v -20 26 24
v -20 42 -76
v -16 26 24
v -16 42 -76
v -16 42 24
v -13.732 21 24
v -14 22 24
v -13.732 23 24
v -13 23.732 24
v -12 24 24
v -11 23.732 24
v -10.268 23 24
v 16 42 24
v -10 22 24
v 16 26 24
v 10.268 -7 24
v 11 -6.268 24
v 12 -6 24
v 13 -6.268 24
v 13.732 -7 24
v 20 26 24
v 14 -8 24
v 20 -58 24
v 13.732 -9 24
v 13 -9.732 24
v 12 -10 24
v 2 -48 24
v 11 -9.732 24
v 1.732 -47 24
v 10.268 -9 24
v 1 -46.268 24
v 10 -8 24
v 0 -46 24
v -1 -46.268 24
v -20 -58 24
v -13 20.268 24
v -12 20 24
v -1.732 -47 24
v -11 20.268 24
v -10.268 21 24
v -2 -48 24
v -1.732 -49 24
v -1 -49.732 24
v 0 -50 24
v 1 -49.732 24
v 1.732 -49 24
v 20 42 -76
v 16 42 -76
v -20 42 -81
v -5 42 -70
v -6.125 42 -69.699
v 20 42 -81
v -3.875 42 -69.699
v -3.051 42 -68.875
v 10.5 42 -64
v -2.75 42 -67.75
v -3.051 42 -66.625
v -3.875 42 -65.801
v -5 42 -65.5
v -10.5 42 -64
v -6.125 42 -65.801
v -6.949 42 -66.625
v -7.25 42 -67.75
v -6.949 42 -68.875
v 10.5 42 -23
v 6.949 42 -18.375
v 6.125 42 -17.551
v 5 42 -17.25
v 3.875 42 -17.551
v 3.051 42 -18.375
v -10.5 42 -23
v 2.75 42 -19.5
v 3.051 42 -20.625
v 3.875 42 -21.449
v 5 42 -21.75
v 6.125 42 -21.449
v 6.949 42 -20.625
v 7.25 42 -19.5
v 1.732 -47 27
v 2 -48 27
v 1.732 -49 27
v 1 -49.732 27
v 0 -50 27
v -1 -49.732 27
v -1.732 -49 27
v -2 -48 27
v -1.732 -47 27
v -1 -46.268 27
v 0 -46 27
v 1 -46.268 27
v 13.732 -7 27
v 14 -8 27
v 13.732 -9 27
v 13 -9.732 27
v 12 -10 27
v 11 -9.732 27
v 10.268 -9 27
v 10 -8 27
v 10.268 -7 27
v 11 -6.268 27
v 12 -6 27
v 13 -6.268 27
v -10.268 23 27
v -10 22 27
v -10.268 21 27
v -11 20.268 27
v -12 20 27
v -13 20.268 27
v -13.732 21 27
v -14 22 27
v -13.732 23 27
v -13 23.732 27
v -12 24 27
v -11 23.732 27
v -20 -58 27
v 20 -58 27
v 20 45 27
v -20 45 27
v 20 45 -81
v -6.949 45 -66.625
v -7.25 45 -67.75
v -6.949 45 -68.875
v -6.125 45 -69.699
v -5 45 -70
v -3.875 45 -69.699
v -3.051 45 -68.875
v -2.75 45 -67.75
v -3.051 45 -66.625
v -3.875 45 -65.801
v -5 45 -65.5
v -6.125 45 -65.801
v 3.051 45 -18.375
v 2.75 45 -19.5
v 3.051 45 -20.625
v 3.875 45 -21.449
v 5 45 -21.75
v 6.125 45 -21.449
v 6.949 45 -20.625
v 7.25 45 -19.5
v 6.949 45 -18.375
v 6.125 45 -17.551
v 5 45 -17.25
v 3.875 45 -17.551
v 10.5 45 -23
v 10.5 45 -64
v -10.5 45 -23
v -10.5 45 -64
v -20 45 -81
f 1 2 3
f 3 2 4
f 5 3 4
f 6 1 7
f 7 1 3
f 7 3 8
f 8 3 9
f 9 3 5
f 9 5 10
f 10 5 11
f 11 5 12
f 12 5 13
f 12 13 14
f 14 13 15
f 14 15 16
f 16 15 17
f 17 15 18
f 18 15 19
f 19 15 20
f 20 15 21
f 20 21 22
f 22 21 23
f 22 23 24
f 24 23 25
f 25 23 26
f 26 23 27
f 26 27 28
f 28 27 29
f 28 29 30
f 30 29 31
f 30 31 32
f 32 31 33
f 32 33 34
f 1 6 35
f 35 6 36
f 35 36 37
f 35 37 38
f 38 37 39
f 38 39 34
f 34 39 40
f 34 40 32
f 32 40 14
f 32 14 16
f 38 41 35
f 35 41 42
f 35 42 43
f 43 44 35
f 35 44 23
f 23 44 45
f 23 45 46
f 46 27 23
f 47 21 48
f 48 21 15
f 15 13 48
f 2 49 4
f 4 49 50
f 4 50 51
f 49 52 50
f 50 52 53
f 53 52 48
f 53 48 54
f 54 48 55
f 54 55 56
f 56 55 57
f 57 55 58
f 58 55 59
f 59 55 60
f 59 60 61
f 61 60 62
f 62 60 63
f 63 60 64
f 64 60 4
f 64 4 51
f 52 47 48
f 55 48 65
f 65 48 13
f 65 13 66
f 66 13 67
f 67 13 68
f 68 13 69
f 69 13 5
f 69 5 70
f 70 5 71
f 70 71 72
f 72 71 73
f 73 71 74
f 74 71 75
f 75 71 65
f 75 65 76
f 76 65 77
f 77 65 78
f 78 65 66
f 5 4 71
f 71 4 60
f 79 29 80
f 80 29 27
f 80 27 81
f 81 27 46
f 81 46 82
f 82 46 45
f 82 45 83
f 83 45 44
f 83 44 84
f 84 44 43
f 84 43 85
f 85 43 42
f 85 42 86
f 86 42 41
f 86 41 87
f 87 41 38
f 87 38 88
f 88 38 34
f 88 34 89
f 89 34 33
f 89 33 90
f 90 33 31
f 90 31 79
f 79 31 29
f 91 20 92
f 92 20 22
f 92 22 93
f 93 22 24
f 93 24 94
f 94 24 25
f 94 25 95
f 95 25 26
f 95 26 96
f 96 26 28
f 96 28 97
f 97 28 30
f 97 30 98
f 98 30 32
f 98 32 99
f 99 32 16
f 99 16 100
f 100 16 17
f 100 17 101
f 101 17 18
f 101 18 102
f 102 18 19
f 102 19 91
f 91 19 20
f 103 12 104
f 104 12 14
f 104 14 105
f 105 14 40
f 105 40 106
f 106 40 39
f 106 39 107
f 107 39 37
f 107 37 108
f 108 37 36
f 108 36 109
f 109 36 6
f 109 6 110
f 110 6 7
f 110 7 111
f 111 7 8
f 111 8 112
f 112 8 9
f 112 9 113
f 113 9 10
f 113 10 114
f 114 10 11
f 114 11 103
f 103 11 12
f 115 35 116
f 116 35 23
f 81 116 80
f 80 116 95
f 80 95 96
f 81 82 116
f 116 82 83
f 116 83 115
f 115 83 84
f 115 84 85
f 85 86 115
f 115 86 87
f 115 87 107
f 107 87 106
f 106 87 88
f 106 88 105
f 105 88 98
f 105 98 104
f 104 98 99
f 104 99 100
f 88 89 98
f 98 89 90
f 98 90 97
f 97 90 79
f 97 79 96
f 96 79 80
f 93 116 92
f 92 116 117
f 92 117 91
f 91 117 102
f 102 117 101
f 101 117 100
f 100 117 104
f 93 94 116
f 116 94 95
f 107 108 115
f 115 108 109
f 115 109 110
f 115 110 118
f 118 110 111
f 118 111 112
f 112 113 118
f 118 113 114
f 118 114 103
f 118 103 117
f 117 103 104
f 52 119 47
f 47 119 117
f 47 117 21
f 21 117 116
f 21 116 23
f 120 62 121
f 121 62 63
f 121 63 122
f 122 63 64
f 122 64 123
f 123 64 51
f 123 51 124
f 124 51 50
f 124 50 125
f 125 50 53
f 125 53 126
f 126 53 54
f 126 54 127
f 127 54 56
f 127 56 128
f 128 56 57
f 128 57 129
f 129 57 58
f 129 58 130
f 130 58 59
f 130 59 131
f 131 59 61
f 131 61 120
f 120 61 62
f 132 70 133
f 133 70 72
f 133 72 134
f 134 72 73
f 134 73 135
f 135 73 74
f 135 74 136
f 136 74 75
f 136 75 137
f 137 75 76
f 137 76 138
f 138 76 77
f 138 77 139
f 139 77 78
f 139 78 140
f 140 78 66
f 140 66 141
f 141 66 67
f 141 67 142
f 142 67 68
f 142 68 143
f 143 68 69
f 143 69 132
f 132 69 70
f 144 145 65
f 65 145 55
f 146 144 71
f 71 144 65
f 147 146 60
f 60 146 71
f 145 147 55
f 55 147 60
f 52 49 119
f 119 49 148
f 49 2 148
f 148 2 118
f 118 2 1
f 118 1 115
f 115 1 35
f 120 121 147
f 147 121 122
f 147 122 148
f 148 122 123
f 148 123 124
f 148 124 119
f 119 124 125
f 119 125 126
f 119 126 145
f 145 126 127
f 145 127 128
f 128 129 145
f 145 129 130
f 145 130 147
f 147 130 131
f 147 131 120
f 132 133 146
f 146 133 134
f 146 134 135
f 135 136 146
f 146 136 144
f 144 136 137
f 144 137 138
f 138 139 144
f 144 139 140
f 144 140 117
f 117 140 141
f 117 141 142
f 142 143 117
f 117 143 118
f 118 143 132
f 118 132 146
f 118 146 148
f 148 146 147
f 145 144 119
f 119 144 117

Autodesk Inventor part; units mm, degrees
ref_plane "YZ Plane" through (0, 0, 0) normal (1, 0, 0) x (0, 1, 0)
sketch "Sketch1" plane through (0, 0, 0) normal (0, 0, 1) x (1, 0, 0)
  line L0 (-31, -31) -> (31, -31)
  line L1 (31, -31) -> (31, 31)
  line L2 (31, 31) -> (-31, 31)
  line L3 (-31, 31) -> (-31, -31)
  line L4 (-31, -31) -> (31, 31) construction
  line L5 (31, -31) -> (-31, 31) construction
  line L6 (-33, 33) -> (33, 33)
  line L7 (33, 33) -> (33, -33)
  line L8 (33, -33) -> (-33, -33)
  line L9 (-33, -33) -> (-33, 33)
  point P0 (0, 0)
  dimension "d0" = 62
  dimension "d1" = 62
  dimension "d2" = 2
extrude "Extrusion1" add sketch "Sketch1" along normal blind 2 contours L3 L2 L1 L0 | L6 L7 L8 L9
extrude "Extrusion2" add sketch "Sketch1" against normal blind 12
sketch "Sketch2" plane through (-33, 33, 2) normal (0, 1, 0) x (1, 0, 0)
  line L0 (13, 3) -> (53, 3)
  line L1 (53, 3) -> (53, 0)
  line L2 (53, 0) -> (13, 0)
  line L3 (13, 0) -> (13, 3)
  line L4 (0, 14) -> (0, 0) projected
  line L5 (0, 14) -> (66, 14) projected
  point P0 (33, 2)
  dimension "d7" = 40
  dimension "d8" = 3
  dimension "d9" = 13
  dimension "d10" = 11
extrude "Extrusion3" add sketch "Sketch2" along normal blind 12
sketch "Sketch3" plane through (20, 33, -1) normal (0, 0, -1) x (-1, 0, 0)
  line L0 (40, 12) -> (0, 12) projected
  line L1 (40, 0) -> (40, 12) projected
  line L2 (0, 12) -> (40, 12)
  line L3 (40, 12) -> (40, 9)
  line L4 (40, 9) -> (0, 9)
  line L5 (0, 9) -> (0, 12)
  point P0 (20, -33)
  dimension "d13" = 3
extrude "Extrusion4" add sketch "Sketch3" along normal blind 80
sketch "Sketch4" plane through (-20, 42, -1) normal (0, -1, 0) x (1, 0, 0)
  line L0 (30.5, -63) -> (9.5, -63)
  line L1 (9.5, -63) -> (9.5, -22)
  line L2 (9.5, -22) -> (30.5, -22)
  line L3 (30.5, -22) -> (30.5, -63)
  line L4 (40, 3) -> (40, -80) projected
  line L5 (0, 3) -> (40, 3) projected
  point P0 (20, 1)
  dimension "d16" = 21
  dimension "d17" = 41
  dimension "d18" = 9.5
  dimension "d19" = 25
extrude "Extrusion5" cut sketch "Sketch4" against normal blind 80
sketch "Sketch5" plane through (-20, 42, -1) normal (0, -1, 0) x (1, 0, 0)
  line L0 (30.5, -63) -> (9.5, -63) projected
  line L1 (30.5, -63) -> (9.5, -63)
  line L2 (9.5, -63) -> (9.5, -70)
  line L3 (9.5, -70) -> (30.5, -70)
  line L4 (30.5, -70) -> (30.5, -63)
  circle A0 centre (15, -66.75) radius 2.25
  line L5 (30.5, -22) -> (30.5, -63) projected
  line L6 (30.5, -22) -> (9.5, -22)
  line L7 (9.5, -22) -> (9.5, -15)
  line L8 (9.5, -15) -> (30.5, -15)
  line L9 (30.5, -15) -> (30.5, -22)
  circle A1 centre (25, -18.5) radius 2.25
  point P0 (20, 1)
  point P1 (14.9217, -69.81)
  point P2 (13.9783, -69.81)
  point P3 (25.0283, -15.19)
  point P4 (25.9717, -15.19)
  dimension "d22" = 7
  dimension "d23" = 4.5
  dimension "d24" = 3.75
  dimension "d25" = 5.5
  dimension "d26" = 7
  dimension "d27" = 4.5
  dimension "d28" = 5.5
  dimension "d29" = 3.5
extrude "Extrusion6" cut sketch "Sketch5" against normal blind 80 contours A0 | A1
sketch "Sketch6" plane through (-33, -33, 2) normal (0, -1, 0) x (1, 0, 0)
  line L0 (0, -14) -> (0, 0) projected
  line L1 (66, -14) -> (66, 0) projected
  line L2 (0, 0) -> (66, 0)
  line L3 (66, 0) -> (66, -14)
  line L4 (66, -14) -> (0, -14)
  line L5 (0, -14) -> (0, 0)
  point P0 (33, -2)
  point P1 (66, 0)
extrude "Extrusion7" cut sketch "Sketch6" against normal up to surface (75 mm away)
sketch "Sketch7" plane through (0, 0, 2) normal (0, 0, 1) x (1, 0, 0)
  line L0 (-20, 42) -> (-20, 45) projected
  line L1 (20, 42) -> (20, 45) projected
  line L2 (-20, 45) -> (20, 45)
  line L3 (20, 45) -> (20, 42)
  line L4 (20, 42) -> (-20, 42)
  line L5 (-20, 42) -> (-20, 45)
  point P0 (0, 0)
extrude "Extrusion8" add sketch "Sketch7" along normal blind 25
sketch "Sketch8" plane through (-20, 42, -81) normal (0, -1, 0) x (1, 0, 0)
  line L0 (0, 108) -> (0, 0) projected
  line L1 (40, 0) -> (40, 108) projected
  line L2 (0, 108) -> (40, 108)
  line L3 (40, 108) -> (40, 105)
  line L4 (40, 105) -> (0, 105)
  line L5 (0, 105) -> (0, 108)
  point P0 (20, 81)
  dimension "d36" = 3
extrude "Extrusion9" add sketch "Sketch8" along normal blind 100
sketch "Sketch9" plane through (20, 42, 24) normal (0, 0, -1) x (-1, 0, 0)
  circle A0 centre (20, -90) radius 2
  circle A1 centre (8, -50) radius 2
  circle A2 centre (32, -20) radius 2
  line L0 (40, 0) -> (40, -100) projected
  line L1 (0, 0) -> (0, -100) projected
  line L2 (40, -100) -> (0, -100) projected
  line L3 (0, 0) -> (40, 0) projected
  point P0 (20, -42)
  dimension "d39" = 4
  dimension "d40" = 4
  dimension "d41" = 4
  dimension "d42" = 8
  dimension "d43" = 8
  dimension "d44" = 20
  dimension "d45" = 10
  dimension "d46" = 50
  dimension "d47" = 20
extrude "Extrusion10" cut sketch "Sketch9" against normal blind 10 contours A0 | A1 | A2
ref_plane "Work Plane1" through (0, 45, 27) normal (1, 0, 0) x (0, 0, -1)
sketch "Sketch11" plane through (20, 45, 27) normal (1, 0, 0) x (0, 0, -1)
  line L0 (3, -3) -> (3, -103) projected
  line L1 (3, -3) -> (103, -3)
  line L2 (103, -3) -> (103, -19)
  line L3 (103, -19) -> (3, -19)
  line L4 (3, -19) -> (3, -3)
  line L5 (103, -3) -> (3, -19)
  point P0 (27, -45)
  point P1 (3, -19)
  dimension "d55" = 100
  dimension "d56" = 16
extrude "Extrusion12" add sketch "Sketch11" against normal blind 4 contours L1 L5 L0
ref_plane "Work Plane2" through (0, 45, -81) normal (-1, 0, 0) x (0, 0, 1)
mirror "Mirror1" about plane through (0, 45, -81) normal (-1, 0, 0) of "Extrusion12"
properties part number "pan_base_holder_first"
